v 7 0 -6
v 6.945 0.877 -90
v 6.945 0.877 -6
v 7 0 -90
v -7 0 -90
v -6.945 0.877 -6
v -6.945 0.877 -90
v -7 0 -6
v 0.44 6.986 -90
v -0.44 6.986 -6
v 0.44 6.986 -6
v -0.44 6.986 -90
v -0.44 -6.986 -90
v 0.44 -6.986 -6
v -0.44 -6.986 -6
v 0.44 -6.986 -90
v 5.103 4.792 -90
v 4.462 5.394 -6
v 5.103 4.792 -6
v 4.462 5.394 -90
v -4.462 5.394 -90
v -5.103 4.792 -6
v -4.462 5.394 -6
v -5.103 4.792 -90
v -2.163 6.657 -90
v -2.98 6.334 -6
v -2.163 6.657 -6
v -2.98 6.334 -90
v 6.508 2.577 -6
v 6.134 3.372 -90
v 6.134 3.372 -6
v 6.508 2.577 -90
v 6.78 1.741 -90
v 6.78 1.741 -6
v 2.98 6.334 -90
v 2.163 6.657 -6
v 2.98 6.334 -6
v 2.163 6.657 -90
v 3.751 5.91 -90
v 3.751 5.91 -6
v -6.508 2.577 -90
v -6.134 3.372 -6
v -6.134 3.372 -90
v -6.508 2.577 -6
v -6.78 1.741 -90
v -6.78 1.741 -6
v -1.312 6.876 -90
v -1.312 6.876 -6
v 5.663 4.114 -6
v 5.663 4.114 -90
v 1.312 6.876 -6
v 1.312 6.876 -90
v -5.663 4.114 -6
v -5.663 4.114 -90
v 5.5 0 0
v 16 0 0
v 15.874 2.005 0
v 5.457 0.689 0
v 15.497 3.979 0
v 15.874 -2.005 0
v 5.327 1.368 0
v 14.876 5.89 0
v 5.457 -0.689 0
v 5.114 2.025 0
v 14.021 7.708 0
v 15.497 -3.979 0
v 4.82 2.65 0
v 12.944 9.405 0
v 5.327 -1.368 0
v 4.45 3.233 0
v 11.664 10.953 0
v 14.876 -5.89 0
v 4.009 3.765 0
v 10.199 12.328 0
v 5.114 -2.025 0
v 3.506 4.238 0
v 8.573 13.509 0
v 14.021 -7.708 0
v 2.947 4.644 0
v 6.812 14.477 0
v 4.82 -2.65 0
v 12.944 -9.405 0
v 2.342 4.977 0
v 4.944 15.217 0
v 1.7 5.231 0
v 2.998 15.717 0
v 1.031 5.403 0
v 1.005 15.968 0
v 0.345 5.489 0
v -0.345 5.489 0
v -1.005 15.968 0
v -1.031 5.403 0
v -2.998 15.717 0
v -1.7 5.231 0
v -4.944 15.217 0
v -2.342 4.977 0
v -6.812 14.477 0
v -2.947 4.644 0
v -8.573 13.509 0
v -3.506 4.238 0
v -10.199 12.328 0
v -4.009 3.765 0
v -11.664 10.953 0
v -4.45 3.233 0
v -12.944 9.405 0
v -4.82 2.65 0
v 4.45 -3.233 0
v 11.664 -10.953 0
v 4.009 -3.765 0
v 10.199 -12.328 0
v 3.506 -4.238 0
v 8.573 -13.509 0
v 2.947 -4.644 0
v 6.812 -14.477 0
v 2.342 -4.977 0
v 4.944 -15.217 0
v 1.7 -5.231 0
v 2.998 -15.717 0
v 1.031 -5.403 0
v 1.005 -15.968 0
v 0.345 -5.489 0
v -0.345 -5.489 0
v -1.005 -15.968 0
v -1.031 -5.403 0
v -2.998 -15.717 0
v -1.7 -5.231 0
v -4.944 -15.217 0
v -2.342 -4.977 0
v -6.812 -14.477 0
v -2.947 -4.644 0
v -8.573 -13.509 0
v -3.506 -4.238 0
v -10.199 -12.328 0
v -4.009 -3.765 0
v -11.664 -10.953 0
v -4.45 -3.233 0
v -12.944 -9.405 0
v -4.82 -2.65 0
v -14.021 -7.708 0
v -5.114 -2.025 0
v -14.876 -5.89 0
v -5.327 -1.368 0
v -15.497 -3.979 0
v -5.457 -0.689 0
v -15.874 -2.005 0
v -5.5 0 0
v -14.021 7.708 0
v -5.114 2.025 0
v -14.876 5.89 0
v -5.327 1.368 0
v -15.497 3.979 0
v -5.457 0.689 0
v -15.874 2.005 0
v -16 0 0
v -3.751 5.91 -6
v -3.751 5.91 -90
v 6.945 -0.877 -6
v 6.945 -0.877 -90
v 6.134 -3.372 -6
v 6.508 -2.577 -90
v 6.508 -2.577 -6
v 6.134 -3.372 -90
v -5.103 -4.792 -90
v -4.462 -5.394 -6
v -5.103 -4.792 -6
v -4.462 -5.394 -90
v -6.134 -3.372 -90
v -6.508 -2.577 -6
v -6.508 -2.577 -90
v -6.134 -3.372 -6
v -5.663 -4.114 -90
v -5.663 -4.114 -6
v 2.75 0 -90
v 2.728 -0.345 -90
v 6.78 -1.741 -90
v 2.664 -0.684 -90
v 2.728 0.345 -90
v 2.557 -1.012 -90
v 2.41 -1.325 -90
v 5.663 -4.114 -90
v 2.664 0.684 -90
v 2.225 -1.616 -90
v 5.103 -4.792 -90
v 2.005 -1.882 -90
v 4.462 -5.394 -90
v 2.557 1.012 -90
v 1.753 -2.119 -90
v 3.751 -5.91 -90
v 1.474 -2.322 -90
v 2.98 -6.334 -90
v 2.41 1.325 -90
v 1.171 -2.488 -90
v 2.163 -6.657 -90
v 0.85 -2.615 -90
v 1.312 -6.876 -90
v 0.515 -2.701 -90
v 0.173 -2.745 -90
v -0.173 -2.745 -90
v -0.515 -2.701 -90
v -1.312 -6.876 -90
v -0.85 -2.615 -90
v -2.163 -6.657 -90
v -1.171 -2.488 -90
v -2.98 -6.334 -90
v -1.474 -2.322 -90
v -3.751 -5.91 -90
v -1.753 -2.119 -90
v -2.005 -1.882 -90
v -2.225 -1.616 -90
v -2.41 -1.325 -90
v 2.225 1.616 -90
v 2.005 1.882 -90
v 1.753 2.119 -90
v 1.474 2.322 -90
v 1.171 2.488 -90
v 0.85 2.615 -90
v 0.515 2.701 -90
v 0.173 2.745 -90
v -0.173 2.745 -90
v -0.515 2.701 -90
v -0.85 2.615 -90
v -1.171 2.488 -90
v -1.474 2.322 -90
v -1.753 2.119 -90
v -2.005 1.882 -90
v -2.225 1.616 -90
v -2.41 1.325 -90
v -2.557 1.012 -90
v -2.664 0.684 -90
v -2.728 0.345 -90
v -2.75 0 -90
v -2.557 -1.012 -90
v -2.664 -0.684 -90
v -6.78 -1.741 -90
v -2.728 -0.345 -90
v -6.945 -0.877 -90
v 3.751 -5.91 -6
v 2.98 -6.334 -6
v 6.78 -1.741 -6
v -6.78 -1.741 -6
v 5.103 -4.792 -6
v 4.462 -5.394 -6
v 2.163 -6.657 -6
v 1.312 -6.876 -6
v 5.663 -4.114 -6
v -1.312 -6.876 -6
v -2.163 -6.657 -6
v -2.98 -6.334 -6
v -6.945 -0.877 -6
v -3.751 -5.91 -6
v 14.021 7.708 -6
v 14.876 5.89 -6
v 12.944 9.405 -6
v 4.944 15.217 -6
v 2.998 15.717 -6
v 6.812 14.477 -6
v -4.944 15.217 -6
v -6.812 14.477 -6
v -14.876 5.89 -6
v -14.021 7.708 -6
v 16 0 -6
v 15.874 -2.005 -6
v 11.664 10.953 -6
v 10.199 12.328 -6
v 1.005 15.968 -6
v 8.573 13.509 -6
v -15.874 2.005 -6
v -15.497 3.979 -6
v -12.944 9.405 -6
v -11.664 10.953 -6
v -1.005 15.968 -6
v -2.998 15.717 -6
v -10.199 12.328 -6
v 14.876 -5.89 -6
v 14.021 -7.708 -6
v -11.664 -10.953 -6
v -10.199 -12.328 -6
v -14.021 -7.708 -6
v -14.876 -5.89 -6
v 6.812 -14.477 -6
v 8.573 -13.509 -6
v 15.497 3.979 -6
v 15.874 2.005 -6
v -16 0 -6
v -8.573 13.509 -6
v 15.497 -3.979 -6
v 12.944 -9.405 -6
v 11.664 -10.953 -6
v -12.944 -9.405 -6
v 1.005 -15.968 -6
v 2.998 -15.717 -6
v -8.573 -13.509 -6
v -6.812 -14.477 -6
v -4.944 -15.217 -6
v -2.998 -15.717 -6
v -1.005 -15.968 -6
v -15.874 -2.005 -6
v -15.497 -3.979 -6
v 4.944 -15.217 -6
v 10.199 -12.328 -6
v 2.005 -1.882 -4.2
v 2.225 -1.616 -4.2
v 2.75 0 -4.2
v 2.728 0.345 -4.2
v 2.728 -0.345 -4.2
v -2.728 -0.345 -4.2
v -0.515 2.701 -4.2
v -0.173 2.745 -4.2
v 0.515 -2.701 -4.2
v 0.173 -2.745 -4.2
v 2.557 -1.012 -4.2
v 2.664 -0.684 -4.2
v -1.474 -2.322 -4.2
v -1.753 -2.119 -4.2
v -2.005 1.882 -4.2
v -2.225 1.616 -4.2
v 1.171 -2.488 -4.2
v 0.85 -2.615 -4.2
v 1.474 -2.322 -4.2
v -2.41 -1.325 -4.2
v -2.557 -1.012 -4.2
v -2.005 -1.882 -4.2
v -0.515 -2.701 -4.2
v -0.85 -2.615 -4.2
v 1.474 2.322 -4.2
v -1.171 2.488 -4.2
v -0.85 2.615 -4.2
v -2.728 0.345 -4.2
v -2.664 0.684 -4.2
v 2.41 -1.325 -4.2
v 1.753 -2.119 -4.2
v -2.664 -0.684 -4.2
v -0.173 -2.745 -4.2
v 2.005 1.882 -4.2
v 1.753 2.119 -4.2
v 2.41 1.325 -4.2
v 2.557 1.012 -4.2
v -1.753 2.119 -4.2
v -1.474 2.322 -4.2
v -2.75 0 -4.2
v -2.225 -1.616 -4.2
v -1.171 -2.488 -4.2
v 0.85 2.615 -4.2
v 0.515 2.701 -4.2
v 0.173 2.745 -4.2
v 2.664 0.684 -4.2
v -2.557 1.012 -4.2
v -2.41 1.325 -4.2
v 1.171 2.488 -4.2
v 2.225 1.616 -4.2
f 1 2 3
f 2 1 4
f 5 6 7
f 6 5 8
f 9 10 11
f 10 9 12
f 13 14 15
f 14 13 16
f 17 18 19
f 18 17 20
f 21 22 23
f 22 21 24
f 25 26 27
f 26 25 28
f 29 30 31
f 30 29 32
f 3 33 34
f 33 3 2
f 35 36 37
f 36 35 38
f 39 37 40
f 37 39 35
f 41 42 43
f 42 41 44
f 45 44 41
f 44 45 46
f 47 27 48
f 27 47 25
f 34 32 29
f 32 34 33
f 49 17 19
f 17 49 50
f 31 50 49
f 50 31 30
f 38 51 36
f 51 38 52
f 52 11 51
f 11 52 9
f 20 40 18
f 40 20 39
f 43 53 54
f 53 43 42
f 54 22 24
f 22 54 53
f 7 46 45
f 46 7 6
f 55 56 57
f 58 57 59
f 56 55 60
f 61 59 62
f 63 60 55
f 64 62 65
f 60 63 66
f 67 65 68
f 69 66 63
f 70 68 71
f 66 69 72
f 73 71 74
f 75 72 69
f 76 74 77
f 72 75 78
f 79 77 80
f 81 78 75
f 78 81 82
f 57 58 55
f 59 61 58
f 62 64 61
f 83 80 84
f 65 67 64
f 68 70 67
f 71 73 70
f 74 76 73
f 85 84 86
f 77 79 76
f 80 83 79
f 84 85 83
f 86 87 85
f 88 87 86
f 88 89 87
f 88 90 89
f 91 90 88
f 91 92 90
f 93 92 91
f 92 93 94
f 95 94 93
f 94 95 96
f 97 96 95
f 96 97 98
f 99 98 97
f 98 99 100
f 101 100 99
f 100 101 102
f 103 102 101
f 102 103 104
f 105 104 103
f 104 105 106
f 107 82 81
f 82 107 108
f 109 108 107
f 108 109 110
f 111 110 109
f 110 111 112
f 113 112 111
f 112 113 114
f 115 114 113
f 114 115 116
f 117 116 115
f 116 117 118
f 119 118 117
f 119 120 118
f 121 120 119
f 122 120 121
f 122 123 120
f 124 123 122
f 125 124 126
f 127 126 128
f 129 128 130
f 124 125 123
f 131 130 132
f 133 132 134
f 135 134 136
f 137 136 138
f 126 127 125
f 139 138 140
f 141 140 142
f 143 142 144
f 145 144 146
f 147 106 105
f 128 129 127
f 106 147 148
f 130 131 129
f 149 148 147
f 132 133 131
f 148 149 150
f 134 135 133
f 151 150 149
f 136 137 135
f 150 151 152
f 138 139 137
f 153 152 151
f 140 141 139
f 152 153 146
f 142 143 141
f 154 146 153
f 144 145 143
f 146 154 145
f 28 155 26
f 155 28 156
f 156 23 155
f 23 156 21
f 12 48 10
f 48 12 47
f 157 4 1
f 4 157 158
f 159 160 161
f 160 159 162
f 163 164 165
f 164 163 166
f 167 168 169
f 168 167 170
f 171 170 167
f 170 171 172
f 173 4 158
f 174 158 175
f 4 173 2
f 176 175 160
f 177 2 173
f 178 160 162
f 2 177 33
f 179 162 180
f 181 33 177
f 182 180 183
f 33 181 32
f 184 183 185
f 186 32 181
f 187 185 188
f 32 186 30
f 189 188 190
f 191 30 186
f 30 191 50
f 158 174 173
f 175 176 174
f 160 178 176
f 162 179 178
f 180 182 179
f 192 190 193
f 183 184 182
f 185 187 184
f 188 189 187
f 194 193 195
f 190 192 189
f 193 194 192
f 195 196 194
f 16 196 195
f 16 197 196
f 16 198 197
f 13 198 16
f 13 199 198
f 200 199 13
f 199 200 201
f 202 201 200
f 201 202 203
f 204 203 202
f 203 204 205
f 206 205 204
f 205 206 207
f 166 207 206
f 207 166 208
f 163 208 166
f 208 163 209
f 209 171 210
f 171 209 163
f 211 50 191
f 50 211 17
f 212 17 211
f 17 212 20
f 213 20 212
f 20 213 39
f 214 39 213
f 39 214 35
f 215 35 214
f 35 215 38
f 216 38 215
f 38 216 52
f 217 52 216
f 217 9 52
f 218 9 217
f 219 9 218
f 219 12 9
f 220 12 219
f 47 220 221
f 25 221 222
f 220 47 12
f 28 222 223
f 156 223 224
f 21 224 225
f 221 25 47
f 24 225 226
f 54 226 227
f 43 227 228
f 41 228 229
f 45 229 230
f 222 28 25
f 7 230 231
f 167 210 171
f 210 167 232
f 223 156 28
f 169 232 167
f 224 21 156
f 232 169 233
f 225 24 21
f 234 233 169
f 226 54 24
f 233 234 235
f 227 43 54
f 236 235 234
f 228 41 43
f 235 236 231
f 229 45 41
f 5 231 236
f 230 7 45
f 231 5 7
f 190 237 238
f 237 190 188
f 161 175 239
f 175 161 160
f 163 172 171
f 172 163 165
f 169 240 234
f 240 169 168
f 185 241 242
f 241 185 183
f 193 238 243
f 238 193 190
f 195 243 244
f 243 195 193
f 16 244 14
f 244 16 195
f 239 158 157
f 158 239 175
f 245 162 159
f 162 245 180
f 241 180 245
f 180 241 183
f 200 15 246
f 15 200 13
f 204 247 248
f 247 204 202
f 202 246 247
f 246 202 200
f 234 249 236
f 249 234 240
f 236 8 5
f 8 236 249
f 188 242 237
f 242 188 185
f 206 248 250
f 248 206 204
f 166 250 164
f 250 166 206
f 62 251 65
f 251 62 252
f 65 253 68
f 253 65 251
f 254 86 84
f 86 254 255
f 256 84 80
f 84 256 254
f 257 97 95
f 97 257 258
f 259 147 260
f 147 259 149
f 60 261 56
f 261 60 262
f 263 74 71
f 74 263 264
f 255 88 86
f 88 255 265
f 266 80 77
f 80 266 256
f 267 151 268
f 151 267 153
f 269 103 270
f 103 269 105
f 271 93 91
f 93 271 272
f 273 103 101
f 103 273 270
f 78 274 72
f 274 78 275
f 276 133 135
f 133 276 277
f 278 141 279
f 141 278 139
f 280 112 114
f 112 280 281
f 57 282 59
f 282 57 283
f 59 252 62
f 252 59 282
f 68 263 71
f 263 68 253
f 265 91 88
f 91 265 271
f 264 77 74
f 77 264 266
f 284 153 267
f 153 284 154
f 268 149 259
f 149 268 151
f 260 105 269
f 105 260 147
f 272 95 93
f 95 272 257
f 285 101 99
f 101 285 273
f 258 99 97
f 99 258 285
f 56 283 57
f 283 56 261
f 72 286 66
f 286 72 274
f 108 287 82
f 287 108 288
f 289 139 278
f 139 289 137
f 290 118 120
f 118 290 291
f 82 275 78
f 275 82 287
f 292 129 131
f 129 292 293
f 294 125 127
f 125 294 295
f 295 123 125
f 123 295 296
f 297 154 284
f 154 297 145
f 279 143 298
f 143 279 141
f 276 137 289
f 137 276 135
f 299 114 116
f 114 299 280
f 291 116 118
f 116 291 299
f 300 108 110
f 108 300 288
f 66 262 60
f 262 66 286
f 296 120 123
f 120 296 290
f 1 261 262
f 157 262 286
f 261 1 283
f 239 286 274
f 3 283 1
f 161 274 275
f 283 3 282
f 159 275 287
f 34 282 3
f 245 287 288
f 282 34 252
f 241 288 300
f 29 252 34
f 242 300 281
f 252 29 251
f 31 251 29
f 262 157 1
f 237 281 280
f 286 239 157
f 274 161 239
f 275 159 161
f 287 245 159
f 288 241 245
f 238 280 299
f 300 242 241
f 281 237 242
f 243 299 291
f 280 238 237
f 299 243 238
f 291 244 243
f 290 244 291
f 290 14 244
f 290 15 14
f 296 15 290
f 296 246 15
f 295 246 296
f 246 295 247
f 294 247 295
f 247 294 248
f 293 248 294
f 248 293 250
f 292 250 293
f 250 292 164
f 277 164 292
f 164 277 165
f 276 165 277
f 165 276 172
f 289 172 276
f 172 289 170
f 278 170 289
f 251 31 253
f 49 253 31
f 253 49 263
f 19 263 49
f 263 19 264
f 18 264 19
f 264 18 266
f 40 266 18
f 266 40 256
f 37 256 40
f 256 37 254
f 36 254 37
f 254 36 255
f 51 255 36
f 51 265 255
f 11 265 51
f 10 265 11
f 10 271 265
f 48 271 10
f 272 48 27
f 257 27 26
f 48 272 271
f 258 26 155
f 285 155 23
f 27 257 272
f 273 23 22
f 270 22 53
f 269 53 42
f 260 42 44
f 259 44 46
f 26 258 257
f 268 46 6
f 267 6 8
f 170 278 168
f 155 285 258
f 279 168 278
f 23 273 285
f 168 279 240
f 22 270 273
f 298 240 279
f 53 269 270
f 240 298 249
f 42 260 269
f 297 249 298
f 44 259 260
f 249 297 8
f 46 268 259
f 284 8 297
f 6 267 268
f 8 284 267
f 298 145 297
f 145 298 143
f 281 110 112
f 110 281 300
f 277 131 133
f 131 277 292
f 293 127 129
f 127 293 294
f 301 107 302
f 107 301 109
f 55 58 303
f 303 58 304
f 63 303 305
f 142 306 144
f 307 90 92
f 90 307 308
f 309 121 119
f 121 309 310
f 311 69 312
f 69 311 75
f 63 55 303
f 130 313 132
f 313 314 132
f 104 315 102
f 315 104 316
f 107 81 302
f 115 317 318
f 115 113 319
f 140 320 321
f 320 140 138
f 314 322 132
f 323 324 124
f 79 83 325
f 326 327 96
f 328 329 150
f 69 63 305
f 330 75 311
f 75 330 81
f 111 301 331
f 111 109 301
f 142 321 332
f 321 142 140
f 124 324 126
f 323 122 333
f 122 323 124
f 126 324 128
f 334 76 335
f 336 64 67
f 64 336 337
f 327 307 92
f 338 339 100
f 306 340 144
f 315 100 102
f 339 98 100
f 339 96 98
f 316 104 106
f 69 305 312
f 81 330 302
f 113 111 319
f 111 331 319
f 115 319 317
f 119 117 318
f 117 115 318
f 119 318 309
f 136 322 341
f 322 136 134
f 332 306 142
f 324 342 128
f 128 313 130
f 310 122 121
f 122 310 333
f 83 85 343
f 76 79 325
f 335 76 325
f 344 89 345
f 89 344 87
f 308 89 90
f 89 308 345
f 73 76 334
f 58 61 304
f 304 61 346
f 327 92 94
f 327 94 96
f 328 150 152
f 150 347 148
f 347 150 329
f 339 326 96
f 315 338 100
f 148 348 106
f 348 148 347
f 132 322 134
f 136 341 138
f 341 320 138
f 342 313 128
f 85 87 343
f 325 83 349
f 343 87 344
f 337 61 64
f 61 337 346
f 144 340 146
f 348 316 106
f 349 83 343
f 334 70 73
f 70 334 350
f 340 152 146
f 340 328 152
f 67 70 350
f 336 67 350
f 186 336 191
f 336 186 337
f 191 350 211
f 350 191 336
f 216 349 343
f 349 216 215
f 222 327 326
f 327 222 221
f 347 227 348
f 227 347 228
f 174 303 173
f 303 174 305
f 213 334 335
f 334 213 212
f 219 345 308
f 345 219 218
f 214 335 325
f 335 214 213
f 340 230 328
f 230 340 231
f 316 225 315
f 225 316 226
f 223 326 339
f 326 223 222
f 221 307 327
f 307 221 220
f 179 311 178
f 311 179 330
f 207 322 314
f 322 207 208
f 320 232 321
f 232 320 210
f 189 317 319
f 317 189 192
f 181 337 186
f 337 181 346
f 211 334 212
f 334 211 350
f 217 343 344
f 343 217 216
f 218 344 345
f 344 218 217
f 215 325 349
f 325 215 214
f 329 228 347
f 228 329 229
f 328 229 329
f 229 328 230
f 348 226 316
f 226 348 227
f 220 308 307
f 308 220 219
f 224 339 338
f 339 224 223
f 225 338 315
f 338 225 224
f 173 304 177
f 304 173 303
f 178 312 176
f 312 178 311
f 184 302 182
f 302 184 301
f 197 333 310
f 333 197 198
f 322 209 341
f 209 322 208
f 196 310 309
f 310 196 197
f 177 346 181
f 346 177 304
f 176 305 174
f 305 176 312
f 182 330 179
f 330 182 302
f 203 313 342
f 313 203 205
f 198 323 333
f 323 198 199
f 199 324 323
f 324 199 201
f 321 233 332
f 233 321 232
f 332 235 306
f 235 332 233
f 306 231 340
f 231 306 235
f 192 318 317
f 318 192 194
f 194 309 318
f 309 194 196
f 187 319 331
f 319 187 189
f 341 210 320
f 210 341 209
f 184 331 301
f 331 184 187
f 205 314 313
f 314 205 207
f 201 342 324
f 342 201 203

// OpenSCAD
$fn = 50;


difference() {
	union() {
		translate(v = [0, 0, -90.0000000000]) {
			cylinder(h = 90, r = 7.0000000000);
		}
		translate(v = [0, 0, -6.0000000000]) {
			cylinder(h = 6, r = 16.0000000000);
		}
	}
	union() {
		translate(v = [0, 0, 0]) {
			rotate(a = [0, 0, 0]) {
				difference() {
					union() {
						#translate(v = [0, 0, -90.0000000000]) {
							cylinder(h = 90, r = 2.2500000000);
						}
						#translate(v = [0, 0, -4.2000000000]) {
							cylinder(h = 4.2000000000, r = 7.0000000000, r1 = 2.7500000000, r2 = 5.5000000000);
						}
						#translate(v = [0, 0, -90.0000000000]) {
							cylinder(h = 90, r = 2.7500000000);
						}
						#translate(v = [0, 0, -90.0000000000]) {
							cylinder(h = 90, r = 2.2500000000);
						}
					}
					union();
				}
			}
		}
	}
}
